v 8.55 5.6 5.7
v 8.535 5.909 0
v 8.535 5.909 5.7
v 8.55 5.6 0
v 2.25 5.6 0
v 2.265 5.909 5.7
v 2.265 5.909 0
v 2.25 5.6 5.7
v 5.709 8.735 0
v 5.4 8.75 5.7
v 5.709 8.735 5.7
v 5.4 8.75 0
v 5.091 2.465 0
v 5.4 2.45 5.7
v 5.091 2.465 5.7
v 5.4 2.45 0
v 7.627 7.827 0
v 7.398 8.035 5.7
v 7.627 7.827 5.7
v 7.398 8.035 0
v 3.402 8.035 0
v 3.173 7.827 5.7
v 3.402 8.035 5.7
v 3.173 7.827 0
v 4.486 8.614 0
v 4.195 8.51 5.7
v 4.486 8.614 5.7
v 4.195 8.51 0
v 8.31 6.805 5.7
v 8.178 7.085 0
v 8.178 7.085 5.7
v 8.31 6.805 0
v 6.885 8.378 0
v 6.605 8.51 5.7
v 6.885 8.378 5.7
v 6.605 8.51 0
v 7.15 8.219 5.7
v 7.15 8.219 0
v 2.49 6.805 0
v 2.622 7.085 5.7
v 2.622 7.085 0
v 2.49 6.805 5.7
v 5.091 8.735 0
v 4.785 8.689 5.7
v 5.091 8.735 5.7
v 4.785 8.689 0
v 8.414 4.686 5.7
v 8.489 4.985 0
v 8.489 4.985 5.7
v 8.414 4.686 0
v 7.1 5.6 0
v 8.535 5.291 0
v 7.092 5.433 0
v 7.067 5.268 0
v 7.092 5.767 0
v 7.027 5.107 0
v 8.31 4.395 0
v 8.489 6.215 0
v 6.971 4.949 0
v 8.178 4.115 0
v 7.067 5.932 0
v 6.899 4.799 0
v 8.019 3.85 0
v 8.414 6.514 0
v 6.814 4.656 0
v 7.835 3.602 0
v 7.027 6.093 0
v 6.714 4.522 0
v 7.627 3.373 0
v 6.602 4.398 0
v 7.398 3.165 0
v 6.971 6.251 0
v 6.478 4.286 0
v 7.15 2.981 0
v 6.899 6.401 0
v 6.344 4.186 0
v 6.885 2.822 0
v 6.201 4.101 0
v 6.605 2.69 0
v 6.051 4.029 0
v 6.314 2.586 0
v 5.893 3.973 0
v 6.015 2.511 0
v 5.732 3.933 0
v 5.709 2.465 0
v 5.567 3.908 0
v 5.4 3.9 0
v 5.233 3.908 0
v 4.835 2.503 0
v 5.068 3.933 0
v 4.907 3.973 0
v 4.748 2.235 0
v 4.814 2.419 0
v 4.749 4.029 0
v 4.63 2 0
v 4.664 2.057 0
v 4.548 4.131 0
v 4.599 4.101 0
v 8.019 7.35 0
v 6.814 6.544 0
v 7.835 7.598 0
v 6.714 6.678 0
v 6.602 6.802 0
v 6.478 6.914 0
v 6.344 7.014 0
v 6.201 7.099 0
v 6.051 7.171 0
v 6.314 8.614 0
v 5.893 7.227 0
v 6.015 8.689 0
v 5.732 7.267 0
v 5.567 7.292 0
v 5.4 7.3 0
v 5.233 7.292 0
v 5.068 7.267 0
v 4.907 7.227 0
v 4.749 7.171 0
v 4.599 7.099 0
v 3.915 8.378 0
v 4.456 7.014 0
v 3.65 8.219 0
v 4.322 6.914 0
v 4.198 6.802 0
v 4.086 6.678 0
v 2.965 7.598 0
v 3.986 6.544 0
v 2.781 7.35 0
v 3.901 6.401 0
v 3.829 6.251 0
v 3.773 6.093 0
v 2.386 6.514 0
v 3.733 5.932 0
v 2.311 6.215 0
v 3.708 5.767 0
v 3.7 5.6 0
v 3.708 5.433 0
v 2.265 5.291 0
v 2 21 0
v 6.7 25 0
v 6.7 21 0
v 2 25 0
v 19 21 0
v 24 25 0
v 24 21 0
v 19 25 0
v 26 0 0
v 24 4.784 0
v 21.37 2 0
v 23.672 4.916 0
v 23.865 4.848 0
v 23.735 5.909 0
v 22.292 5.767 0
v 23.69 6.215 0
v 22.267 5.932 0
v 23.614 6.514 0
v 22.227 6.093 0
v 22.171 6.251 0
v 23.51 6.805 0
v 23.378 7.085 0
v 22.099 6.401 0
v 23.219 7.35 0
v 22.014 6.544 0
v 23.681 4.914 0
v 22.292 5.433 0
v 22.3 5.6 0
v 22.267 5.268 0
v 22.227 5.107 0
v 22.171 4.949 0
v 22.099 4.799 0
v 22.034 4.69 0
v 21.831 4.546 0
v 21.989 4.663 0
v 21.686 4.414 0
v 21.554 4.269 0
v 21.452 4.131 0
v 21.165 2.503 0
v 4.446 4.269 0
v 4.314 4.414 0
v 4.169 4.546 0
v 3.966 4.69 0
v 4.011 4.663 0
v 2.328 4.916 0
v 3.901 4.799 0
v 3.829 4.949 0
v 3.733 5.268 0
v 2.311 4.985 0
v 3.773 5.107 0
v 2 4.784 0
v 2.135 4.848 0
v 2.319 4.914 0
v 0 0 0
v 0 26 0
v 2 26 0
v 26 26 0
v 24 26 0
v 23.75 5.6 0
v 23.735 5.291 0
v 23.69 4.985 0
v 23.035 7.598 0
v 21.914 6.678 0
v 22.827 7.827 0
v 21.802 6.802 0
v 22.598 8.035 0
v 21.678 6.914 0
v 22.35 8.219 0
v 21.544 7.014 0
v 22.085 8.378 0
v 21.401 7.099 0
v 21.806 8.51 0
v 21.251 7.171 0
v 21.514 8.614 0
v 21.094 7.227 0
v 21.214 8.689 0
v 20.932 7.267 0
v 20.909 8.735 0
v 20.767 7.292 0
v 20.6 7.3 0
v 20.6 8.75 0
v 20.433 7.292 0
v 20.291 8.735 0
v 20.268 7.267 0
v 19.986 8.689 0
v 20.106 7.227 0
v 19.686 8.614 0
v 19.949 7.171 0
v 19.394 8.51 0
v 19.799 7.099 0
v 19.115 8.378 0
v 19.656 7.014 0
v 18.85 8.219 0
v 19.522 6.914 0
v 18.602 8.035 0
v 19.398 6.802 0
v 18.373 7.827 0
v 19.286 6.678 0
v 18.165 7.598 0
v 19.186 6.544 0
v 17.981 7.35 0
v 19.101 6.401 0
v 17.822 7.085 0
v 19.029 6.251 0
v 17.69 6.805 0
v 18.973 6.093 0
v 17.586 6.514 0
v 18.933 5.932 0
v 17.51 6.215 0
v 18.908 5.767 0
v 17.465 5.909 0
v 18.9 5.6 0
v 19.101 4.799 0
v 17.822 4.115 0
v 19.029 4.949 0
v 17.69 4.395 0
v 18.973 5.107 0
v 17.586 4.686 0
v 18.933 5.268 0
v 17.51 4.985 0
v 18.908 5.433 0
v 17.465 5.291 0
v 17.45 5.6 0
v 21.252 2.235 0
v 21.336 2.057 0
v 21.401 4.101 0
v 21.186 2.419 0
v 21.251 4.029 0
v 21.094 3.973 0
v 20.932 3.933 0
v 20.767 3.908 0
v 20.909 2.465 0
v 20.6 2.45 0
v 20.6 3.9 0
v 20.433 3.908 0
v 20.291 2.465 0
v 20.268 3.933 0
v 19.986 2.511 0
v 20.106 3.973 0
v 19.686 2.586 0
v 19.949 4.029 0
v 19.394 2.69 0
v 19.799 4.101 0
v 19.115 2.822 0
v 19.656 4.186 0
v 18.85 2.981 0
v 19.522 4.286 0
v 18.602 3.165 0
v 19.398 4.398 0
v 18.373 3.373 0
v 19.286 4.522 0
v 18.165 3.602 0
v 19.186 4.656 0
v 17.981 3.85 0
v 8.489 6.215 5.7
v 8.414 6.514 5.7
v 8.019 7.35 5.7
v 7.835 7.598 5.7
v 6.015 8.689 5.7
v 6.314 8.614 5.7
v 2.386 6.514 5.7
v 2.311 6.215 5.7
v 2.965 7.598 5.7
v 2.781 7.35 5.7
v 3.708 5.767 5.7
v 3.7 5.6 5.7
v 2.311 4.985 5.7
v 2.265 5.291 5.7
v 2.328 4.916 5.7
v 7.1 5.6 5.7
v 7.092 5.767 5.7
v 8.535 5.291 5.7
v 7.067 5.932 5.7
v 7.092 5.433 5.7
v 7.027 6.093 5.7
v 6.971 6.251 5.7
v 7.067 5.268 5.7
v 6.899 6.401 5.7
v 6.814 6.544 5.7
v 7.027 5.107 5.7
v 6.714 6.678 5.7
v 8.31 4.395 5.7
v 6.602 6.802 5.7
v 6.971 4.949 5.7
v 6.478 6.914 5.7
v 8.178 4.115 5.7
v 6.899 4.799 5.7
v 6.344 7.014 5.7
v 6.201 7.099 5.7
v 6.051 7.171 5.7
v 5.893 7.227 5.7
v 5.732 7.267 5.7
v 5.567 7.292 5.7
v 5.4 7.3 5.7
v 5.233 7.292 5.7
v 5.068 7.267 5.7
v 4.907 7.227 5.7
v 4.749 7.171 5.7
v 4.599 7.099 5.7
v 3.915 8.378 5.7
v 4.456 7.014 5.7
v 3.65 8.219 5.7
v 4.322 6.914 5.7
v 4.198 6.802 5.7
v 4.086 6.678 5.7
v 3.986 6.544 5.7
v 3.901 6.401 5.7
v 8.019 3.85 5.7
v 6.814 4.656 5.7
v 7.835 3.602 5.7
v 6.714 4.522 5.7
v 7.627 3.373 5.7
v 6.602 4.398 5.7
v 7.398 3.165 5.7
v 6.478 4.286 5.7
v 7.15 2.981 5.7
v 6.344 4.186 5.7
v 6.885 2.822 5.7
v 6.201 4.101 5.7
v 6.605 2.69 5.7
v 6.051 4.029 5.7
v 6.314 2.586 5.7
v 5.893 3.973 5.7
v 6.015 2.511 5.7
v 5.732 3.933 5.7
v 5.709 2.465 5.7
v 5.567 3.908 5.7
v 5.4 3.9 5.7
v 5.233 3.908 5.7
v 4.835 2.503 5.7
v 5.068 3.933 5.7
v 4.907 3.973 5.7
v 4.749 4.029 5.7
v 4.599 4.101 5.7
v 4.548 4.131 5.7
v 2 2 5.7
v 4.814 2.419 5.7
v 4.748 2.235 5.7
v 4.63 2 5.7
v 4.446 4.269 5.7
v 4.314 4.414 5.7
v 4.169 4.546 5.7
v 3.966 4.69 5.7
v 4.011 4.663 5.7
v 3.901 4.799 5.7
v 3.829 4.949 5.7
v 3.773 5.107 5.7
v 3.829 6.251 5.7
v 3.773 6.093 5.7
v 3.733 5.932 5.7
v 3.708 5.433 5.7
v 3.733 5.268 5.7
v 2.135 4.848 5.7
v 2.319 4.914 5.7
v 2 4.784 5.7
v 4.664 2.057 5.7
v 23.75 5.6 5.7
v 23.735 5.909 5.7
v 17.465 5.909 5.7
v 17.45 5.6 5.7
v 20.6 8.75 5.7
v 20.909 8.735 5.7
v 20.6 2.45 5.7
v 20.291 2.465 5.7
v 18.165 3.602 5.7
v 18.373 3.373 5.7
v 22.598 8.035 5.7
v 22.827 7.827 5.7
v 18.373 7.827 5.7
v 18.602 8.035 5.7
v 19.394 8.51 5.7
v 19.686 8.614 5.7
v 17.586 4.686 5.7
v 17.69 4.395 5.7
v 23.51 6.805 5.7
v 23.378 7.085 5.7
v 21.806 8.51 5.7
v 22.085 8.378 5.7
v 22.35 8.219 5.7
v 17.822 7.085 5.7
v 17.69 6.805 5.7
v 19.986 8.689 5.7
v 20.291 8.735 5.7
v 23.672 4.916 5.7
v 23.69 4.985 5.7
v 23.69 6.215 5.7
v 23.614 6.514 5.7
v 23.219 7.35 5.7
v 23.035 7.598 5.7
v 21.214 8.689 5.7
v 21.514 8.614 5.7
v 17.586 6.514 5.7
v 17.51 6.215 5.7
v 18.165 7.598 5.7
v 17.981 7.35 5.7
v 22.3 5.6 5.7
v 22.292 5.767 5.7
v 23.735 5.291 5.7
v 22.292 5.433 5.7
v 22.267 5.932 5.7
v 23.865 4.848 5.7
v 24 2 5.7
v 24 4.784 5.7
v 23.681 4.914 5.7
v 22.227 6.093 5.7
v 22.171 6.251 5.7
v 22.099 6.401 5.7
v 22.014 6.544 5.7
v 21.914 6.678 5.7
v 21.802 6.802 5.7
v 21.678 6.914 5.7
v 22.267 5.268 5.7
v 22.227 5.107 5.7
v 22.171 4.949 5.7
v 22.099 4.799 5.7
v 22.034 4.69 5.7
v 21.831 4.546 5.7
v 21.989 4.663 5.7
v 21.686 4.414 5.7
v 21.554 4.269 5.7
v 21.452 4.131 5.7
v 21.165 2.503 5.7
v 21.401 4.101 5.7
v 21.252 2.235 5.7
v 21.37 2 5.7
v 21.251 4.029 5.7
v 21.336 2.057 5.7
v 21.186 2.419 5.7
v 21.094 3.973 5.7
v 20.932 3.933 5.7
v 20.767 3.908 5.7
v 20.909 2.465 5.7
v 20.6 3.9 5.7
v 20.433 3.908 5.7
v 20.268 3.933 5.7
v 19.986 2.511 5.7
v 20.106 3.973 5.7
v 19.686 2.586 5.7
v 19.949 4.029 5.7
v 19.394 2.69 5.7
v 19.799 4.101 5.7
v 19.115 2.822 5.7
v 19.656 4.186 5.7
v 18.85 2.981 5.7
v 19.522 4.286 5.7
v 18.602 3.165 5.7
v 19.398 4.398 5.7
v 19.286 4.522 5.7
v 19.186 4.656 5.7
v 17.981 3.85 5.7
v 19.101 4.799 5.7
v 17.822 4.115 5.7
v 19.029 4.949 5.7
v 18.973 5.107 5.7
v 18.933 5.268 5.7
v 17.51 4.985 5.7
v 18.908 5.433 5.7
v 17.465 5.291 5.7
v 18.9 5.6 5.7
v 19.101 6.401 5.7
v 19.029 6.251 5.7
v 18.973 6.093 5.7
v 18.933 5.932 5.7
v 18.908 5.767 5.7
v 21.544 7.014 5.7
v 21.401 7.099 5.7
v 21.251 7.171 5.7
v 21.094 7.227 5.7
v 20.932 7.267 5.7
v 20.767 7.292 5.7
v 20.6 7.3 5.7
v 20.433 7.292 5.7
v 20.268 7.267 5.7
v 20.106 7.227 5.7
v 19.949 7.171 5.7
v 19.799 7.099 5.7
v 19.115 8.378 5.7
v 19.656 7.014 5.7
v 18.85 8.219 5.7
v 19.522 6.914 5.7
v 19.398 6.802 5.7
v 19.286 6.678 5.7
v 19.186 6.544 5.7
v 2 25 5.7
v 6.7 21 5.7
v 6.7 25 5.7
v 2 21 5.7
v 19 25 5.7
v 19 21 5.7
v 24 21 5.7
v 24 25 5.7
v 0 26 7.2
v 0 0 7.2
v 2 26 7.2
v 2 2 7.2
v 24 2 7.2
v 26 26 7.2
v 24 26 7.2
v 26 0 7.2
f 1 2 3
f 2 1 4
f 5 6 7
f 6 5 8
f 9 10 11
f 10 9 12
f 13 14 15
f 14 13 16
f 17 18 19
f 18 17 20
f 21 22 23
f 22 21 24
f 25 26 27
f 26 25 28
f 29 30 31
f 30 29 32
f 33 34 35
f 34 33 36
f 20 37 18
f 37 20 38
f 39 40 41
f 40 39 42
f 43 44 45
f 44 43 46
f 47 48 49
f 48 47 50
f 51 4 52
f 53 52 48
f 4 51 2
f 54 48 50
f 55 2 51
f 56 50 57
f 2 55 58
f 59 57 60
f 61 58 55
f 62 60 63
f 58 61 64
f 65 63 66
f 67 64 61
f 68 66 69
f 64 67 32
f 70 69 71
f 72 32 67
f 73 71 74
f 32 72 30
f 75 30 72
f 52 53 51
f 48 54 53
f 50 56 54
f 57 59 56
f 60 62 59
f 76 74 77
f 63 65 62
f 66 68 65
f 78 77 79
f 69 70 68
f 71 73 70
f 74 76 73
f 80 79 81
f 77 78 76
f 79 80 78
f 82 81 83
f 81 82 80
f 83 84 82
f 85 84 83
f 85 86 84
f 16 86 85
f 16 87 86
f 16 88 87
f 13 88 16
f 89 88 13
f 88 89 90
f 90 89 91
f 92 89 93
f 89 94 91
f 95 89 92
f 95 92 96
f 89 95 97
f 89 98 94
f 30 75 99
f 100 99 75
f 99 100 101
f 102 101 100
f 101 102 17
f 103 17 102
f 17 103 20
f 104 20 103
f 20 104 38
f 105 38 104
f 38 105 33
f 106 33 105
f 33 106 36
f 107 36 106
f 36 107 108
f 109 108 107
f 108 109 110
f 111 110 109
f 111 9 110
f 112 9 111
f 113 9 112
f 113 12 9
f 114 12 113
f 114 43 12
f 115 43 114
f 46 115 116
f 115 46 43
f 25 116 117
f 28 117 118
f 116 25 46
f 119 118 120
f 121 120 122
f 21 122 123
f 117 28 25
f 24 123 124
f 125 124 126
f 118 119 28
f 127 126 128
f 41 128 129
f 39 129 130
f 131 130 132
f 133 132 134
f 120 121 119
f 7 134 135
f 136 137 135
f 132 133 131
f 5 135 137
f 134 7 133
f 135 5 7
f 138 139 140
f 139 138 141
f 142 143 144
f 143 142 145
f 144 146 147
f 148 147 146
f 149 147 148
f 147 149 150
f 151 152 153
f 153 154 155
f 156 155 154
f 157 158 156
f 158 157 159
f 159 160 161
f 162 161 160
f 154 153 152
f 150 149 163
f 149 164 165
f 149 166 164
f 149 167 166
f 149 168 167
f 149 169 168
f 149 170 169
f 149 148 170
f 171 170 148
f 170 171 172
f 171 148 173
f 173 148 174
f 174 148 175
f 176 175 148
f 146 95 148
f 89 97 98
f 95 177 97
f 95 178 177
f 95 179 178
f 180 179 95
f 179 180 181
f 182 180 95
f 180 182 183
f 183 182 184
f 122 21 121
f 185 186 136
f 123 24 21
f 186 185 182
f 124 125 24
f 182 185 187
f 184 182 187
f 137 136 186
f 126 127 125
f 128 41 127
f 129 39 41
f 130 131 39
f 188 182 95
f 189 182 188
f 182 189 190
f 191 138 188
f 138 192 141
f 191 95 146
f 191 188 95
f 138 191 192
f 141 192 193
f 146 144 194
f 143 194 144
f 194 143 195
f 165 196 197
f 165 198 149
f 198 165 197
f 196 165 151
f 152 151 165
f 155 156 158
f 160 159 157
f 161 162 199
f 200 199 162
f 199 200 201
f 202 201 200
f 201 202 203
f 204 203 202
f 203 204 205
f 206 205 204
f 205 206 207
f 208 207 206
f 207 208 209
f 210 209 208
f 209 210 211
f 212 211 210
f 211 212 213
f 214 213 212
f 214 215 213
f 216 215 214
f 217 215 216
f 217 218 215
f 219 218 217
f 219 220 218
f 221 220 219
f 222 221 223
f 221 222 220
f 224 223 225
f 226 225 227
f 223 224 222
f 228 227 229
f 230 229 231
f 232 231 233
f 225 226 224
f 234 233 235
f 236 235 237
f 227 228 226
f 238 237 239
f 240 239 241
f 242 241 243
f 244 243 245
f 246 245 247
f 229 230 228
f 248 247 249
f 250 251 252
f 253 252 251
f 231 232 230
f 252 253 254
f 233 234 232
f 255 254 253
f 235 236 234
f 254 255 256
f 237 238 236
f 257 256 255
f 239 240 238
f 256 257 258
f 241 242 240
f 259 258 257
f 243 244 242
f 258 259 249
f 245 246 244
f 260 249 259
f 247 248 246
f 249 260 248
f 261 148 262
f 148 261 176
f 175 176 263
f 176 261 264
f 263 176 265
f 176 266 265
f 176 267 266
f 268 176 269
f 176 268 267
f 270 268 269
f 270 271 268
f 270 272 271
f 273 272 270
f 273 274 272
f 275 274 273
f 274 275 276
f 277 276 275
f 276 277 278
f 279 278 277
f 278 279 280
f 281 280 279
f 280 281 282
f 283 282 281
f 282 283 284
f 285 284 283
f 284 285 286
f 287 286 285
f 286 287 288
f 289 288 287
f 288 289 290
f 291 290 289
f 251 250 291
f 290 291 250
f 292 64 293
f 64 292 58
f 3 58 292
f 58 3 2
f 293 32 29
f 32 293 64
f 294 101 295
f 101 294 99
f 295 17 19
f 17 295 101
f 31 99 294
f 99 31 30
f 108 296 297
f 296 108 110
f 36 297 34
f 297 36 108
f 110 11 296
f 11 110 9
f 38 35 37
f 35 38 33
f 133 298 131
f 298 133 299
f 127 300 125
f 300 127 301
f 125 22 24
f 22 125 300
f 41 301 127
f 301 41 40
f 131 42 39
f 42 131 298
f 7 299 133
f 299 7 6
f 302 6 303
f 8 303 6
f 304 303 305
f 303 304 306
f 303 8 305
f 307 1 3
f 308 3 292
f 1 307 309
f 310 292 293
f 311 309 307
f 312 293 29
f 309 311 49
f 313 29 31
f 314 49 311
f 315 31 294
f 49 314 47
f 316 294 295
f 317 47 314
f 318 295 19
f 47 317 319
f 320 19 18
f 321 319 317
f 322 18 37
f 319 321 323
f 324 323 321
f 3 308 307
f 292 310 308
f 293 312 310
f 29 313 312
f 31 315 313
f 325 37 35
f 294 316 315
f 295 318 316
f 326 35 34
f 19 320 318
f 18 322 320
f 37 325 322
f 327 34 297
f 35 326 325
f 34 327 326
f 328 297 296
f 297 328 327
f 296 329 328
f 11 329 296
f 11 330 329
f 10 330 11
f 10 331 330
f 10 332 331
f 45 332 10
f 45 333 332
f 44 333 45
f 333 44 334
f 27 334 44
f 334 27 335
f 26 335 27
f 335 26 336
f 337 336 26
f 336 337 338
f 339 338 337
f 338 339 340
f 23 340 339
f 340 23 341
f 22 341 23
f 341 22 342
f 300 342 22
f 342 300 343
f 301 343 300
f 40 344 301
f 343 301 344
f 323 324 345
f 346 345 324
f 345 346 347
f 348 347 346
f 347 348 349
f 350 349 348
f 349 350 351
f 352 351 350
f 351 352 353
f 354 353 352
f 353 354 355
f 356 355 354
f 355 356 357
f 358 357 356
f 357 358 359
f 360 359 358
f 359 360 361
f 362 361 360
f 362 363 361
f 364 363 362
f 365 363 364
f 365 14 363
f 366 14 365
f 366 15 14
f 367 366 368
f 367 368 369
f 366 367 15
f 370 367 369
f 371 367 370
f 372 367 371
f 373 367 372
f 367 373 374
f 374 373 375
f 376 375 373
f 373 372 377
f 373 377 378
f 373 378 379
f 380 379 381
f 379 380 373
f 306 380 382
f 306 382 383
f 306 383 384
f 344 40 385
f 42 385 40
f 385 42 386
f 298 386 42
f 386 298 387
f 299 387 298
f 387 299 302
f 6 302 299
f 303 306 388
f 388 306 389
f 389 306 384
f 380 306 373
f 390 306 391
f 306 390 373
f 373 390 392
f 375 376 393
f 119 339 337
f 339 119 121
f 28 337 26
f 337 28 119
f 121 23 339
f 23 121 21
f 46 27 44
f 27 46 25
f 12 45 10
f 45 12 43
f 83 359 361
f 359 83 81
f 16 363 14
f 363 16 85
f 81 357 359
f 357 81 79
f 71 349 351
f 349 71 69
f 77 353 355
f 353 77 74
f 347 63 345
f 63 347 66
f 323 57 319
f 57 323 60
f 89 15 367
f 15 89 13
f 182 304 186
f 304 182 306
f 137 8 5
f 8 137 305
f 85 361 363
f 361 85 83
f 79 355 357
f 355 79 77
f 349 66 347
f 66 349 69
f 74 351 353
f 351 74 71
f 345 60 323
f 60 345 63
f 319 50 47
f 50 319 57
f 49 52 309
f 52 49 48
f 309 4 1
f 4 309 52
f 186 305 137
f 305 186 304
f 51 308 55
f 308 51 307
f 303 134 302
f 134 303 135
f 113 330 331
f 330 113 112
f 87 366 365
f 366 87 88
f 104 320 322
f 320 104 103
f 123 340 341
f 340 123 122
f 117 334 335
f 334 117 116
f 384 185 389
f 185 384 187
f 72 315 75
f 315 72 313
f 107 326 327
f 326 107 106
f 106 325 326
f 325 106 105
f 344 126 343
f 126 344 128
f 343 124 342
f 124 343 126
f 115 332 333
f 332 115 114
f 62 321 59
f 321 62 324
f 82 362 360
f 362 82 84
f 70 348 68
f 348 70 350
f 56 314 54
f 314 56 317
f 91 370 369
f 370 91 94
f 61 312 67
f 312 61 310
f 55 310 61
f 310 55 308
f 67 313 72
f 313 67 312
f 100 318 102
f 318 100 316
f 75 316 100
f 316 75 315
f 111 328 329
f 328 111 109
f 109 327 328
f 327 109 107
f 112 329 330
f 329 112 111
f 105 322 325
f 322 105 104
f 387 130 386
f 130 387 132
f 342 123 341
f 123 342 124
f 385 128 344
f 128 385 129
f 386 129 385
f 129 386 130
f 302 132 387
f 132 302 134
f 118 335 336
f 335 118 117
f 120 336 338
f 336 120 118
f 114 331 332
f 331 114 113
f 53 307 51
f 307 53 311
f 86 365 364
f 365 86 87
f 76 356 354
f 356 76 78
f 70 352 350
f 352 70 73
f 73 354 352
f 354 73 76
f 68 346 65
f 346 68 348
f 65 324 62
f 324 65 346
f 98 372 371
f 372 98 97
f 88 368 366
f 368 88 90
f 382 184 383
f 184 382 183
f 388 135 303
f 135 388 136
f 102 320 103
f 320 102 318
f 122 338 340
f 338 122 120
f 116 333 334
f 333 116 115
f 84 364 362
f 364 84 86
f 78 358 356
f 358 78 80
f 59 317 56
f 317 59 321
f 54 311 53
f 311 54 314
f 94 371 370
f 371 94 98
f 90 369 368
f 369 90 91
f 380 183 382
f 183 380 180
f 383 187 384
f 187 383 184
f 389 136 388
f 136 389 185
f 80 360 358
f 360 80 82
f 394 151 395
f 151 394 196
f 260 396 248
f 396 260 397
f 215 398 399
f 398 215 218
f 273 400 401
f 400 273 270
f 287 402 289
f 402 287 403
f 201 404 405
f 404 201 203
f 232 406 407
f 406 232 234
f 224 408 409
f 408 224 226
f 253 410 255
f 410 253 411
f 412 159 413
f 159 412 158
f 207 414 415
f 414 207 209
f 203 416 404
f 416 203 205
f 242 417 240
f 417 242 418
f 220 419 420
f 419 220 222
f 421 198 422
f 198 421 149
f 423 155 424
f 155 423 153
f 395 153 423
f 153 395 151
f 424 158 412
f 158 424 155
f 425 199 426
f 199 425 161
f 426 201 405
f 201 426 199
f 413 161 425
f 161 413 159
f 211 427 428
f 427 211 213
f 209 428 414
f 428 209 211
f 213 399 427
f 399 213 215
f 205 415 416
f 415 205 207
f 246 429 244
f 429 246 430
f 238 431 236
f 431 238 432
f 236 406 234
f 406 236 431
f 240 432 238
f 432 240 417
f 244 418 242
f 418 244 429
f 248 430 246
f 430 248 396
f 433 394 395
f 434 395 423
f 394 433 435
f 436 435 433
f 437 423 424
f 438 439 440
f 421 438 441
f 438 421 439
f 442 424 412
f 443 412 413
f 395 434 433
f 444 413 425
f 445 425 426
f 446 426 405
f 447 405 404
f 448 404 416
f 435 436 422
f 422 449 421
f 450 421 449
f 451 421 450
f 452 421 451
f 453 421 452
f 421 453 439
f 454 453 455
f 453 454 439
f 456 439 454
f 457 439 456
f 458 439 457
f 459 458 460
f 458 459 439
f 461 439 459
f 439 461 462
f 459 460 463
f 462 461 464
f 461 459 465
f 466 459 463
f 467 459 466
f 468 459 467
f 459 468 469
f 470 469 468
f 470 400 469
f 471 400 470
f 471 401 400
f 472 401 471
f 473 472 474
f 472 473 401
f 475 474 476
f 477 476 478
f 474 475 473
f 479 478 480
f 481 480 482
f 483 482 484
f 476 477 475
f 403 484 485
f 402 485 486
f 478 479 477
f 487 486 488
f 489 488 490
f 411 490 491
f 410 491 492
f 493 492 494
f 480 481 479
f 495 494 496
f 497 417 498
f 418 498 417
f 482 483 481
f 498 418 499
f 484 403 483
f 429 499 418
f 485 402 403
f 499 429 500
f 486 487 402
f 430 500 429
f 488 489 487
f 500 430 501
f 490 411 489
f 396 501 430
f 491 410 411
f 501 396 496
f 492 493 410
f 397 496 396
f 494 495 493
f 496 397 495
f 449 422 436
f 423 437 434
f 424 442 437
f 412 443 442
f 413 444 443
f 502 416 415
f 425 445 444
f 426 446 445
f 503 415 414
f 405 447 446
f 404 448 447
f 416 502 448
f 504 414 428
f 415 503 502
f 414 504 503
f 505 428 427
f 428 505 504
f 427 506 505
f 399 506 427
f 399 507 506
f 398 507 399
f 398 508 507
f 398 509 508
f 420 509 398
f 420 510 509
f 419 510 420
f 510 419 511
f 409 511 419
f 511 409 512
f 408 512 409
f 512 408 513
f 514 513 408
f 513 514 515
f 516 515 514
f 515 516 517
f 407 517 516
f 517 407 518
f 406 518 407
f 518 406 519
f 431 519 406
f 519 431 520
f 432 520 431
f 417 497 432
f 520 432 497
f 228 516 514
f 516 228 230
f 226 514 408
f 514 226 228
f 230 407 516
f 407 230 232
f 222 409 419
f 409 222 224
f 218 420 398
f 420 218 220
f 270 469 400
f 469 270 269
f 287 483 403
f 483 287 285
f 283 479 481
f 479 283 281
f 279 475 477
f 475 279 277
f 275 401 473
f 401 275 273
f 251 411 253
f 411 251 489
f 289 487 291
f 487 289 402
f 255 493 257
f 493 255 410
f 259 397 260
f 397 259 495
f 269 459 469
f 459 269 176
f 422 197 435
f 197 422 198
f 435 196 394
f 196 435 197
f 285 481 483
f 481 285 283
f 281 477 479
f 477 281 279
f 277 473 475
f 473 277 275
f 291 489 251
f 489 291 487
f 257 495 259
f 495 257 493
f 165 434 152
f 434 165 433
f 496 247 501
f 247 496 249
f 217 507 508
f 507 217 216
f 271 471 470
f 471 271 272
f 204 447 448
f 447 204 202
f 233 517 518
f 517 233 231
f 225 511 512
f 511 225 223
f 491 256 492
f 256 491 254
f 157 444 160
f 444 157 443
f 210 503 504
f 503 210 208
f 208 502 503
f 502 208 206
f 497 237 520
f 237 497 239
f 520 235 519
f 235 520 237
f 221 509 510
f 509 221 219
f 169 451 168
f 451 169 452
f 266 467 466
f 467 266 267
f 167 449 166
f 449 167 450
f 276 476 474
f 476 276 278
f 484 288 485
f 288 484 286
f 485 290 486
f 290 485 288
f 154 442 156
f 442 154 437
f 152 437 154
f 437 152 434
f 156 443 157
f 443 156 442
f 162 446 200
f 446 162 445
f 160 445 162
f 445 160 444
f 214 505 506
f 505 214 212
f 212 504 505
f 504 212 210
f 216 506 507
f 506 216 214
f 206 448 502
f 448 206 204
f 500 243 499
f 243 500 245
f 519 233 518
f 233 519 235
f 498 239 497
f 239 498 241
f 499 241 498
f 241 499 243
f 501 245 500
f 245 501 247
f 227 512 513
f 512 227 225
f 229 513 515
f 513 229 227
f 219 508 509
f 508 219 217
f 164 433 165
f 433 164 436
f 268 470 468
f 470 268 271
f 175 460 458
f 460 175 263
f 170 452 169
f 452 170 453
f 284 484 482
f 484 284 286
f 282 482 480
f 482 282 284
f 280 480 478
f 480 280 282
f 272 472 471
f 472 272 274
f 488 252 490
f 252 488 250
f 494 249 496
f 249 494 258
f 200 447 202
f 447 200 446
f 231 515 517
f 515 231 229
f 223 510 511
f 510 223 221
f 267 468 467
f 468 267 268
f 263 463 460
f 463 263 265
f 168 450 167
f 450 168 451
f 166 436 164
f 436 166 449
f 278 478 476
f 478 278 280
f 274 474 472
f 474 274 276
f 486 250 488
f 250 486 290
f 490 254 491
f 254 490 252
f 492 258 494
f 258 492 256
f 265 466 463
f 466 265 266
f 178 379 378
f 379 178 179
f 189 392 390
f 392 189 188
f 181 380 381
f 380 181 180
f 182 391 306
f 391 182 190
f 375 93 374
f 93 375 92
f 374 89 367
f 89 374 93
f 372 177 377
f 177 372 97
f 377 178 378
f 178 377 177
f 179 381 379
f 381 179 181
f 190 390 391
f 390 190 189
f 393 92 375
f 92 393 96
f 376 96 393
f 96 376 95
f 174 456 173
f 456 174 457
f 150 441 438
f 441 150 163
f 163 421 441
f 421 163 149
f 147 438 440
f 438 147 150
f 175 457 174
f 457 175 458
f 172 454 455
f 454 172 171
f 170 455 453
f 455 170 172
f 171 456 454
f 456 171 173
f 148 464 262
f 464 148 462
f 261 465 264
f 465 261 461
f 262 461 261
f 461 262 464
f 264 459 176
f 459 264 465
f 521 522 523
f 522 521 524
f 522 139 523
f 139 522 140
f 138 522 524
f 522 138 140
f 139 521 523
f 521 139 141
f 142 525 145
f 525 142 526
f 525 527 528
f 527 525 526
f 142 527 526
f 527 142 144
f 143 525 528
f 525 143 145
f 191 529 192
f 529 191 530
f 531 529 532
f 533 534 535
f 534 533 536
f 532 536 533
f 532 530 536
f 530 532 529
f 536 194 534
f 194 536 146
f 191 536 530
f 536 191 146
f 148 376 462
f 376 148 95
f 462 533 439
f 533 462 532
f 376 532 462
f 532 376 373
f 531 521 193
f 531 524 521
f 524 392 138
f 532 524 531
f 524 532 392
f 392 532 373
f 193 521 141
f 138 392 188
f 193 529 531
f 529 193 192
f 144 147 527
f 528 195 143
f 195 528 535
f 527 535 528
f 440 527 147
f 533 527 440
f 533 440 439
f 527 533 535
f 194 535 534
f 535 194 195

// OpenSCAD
$fn=64;

sHeight=7.2;

module screwMount(){
  difference(){
      cylinder(h = sHeight-1.5,
           d = 6.3  ,
           center = false);
      cylinder(h = sHeight-1.3,
           d = 3.4,
           center = false);
  } 
}

module spacer(){
    cube([5.5,4,sHeight-1.5],false);  
}

module screwMountFill(){
    cylinder(h = sHeight-1.5,
           d = 4,
           center = false);
}


module main(){
  union(){
   //screw mounts
   translate([5.4, 5.6, 0])
    screwMount();
   translate([20.6, 5.6, 0])
    screwMount();
    
   //screw mounts connections
   translate([2.9, 3, 0])
    screwMountFill();
   translate([23.1, 3, 0])
    screwMountFill();
    
   //back spacers
   translate([1.2,21,0])
    spacer();
   translate([19,21,0])
    spacer();
    
   //front wall
   translate([0,0,0])
    cube([26,2,sHeight],false);

   //side walls
   translate([0,0,0])
    cube([2,26,sHeight],false);    
   translate([24,0])
    cube([2,26,sHeight],false);
  }  
}


main();
